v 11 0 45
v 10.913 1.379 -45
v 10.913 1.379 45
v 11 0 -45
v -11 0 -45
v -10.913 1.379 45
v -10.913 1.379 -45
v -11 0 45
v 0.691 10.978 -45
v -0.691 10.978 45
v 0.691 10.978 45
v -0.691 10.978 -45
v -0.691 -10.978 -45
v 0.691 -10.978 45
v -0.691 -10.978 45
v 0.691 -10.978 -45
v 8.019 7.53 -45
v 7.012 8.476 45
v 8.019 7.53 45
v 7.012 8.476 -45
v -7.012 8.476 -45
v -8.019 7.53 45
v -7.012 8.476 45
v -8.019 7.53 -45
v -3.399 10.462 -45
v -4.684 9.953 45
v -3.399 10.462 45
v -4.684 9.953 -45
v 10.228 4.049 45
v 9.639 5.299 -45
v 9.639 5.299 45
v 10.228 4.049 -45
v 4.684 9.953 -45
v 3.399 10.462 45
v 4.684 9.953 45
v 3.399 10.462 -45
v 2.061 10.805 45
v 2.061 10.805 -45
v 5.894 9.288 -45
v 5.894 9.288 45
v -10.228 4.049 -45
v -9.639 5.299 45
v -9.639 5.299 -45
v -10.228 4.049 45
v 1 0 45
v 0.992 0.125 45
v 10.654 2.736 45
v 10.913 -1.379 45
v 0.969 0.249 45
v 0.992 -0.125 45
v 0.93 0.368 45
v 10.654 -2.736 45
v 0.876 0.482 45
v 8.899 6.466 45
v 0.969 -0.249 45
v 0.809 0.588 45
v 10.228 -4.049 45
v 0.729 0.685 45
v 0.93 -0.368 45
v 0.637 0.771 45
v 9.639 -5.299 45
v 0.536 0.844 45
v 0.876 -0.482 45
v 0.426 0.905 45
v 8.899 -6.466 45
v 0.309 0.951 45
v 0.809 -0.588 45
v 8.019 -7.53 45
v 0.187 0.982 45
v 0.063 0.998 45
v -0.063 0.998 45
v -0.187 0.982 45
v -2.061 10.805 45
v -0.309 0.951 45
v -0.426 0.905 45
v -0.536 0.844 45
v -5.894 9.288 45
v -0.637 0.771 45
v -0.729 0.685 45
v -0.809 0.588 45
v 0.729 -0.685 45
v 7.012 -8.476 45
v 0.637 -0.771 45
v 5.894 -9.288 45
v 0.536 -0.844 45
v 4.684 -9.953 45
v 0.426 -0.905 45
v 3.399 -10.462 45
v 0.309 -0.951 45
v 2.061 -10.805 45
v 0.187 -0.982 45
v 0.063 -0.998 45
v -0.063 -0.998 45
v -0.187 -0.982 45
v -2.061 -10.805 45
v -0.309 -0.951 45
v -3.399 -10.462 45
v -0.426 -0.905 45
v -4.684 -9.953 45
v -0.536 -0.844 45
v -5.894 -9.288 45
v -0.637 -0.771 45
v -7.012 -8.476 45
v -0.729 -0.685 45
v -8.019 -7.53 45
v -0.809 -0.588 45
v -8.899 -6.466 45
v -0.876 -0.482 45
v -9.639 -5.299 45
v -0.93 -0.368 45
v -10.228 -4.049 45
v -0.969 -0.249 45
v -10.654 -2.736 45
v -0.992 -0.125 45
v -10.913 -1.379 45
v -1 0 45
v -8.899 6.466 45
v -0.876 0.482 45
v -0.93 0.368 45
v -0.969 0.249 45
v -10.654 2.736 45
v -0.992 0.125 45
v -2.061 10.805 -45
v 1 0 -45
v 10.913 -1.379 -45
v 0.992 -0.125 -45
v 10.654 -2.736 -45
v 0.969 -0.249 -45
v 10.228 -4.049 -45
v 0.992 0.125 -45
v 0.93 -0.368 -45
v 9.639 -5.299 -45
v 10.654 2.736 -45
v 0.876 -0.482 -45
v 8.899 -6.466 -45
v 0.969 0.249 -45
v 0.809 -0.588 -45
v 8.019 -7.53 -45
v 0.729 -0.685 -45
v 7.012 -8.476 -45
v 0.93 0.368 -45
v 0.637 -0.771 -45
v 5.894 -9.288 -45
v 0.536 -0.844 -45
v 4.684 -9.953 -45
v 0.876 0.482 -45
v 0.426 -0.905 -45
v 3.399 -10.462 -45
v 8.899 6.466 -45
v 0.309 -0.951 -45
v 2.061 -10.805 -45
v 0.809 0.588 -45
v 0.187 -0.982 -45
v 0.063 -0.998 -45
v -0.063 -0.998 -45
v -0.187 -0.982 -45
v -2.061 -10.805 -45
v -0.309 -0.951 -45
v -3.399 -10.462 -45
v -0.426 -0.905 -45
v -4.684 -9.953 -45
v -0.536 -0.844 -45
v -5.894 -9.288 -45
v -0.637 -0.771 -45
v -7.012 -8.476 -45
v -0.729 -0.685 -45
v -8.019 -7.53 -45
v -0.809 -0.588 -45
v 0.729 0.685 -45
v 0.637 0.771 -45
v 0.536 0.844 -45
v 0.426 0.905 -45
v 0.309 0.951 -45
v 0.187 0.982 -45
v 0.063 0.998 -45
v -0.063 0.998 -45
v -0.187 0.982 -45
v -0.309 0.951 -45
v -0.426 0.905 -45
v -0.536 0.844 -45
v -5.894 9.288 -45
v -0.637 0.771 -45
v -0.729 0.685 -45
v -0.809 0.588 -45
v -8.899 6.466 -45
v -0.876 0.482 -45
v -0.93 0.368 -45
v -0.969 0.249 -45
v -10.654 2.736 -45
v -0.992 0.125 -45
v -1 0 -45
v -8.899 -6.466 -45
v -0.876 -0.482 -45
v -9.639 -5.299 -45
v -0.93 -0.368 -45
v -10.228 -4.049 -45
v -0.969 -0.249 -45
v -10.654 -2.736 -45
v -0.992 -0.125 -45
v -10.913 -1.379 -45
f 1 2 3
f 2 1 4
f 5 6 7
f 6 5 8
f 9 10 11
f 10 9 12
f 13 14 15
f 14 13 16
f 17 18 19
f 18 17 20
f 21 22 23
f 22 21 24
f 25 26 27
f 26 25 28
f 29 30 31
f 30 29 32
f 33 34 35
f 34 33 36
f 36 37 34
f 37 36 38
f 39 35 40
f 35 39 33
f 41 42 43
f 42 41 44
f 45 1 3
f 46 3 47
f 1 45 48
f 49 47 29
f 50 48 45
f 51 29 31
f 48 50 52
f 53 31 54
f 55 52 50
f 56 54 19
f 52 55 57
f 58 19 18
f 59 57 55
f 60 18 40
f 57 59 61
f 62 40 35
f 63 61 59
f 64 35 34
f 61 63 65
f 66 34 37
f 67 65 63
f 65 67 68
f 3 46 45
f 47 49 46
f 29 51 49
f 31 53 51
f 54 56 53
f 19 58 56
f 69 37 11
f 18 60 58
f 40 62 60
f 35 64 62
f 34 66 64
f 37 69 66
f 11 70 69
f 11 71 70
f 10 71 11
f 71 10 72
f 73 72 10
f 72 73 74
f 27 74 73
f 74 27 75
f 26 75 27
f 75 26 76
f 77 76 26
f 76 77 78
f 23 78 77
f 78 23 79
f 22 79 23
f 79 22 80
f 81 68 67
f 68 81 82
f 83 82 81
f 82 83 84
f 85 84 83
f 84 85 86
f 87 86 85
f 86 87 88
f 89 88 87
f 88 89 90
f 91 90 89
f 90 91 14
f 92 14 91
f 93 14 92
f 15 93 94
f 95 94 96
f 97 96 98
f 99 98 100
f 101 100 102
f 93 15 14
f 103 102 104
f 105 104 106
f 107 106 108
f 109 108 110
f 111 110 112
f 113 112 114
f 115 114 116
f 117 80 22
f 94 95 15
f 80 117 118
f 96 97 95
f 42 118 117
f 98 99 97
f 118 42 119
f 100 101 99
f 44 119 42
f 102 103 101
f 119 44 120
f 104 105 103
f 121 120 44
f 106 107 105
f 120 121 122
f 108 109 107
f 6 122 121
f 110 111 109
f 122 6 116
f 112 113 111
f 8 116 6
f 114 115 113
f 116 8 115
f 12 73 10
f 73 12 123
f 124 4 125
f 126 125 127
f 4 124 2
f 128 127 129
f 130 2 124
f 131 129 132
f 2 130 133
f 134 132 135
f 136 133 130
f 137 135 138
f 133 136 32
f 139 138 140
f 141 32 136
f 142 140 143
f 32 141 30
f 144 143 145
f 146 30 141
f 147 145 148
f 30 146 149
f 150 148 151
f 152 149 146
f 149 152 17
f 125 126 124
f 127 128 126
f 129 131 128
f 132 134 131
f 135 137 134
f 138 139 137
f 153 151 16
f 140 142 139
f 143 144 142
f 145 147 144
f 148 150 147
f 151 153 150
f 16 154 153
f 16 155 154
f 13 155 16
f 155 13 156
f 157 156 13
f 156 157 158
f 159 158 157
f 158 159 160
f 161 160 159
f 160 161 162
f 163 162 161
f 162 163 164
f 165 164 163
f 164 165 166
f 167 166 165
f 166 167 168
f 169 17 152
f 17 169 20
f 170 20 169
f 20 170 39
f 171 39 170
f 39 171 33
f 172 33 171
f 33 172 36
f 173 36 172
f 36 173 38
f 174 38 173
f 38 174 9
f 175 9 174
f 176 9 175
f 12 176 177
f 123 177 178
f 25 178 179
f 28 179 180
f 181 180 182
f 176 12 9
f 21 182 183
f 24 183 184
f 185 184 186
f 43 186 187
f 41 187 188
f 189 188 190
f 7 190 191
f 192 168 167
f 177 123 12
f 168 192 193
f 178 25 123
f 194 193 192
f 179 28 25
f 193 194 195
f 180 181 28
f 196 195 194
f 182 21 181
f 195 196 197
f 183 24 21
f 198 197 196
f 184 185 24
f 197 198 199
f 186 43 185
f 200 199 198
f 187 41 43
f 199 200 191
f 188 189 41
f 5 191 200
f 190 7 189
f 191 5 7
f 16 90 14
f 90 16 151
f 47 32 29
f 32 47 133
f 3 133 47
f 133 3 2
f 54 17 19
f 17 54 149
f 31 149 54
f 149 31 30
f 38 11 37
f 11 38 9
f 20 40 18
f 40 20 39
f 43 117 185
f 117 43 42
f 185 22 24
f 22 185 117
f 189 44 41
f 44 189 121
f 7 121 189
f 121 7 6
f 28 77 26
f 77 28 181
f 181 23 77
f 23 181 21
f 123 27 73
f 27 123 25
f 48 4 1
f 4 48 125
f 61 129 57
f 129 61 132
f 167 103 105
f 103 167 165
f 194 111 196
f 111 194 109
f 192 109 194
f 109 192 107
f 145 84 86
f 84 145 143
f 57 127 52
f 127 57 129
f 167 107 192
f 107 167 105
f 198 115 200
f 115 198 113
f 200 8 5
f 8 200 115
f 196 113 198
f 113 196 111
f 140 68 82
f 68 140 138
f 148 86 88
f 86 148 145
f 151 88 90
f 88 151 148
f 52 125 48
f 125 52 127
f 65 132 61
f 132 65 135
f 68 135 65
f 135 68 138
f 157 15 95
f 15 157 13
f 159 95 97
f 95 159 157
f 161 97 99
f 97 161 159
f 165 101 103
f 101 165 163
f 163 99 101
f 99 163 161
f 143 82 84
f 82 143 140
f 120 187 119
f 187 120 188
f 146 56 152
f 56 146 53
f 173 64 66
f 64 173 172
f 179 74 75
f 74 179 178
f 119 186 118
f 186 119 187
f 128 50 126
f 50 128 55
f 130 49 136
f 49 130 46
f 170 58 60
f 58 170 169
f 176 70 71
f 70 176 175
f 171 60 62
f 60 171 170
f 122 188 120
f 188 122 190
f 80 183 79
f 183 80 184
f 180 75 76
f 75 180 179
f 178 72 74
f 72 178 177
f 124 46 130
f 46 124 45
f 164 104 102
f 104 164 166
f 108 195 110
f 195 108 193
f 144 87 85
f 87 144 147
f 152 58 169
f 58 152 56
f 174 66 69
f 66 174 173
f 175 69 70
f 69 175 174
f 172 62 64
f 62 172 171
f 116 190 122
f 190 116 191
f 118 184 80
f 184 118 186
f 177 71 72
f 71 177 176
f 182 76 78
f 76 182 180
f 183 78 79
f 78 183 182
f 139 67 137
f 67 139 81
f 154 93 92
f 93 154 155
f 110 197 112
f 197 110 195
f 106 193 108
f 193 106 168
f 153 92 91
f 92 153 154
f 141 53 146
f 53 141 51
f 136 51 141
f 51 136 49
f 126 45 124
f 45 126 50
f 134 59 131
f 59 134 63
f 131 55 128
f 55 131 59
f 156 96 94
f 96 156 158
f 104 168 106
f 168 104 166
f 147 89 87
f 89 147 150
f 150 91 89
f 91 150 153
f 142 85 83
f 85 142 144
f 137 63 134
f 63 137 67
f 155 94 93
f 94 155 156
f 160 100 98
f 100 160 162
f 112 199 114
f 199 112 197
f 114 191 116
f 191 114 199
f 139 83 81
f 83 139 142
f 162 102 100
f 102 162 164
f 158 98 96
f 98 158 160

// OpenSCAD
$fn = 50;


difference() {
	union() {
		translate(v = [0, 0, -45.0000000000]) {
			cylinder(h = 90, r = 11.0000000000);
		}
	}
	union() {
		translate(v = [0, 0, -100.0000000000]) {
			cylinder(h = 200, r = 1.0000000000);
		}
	}
}
